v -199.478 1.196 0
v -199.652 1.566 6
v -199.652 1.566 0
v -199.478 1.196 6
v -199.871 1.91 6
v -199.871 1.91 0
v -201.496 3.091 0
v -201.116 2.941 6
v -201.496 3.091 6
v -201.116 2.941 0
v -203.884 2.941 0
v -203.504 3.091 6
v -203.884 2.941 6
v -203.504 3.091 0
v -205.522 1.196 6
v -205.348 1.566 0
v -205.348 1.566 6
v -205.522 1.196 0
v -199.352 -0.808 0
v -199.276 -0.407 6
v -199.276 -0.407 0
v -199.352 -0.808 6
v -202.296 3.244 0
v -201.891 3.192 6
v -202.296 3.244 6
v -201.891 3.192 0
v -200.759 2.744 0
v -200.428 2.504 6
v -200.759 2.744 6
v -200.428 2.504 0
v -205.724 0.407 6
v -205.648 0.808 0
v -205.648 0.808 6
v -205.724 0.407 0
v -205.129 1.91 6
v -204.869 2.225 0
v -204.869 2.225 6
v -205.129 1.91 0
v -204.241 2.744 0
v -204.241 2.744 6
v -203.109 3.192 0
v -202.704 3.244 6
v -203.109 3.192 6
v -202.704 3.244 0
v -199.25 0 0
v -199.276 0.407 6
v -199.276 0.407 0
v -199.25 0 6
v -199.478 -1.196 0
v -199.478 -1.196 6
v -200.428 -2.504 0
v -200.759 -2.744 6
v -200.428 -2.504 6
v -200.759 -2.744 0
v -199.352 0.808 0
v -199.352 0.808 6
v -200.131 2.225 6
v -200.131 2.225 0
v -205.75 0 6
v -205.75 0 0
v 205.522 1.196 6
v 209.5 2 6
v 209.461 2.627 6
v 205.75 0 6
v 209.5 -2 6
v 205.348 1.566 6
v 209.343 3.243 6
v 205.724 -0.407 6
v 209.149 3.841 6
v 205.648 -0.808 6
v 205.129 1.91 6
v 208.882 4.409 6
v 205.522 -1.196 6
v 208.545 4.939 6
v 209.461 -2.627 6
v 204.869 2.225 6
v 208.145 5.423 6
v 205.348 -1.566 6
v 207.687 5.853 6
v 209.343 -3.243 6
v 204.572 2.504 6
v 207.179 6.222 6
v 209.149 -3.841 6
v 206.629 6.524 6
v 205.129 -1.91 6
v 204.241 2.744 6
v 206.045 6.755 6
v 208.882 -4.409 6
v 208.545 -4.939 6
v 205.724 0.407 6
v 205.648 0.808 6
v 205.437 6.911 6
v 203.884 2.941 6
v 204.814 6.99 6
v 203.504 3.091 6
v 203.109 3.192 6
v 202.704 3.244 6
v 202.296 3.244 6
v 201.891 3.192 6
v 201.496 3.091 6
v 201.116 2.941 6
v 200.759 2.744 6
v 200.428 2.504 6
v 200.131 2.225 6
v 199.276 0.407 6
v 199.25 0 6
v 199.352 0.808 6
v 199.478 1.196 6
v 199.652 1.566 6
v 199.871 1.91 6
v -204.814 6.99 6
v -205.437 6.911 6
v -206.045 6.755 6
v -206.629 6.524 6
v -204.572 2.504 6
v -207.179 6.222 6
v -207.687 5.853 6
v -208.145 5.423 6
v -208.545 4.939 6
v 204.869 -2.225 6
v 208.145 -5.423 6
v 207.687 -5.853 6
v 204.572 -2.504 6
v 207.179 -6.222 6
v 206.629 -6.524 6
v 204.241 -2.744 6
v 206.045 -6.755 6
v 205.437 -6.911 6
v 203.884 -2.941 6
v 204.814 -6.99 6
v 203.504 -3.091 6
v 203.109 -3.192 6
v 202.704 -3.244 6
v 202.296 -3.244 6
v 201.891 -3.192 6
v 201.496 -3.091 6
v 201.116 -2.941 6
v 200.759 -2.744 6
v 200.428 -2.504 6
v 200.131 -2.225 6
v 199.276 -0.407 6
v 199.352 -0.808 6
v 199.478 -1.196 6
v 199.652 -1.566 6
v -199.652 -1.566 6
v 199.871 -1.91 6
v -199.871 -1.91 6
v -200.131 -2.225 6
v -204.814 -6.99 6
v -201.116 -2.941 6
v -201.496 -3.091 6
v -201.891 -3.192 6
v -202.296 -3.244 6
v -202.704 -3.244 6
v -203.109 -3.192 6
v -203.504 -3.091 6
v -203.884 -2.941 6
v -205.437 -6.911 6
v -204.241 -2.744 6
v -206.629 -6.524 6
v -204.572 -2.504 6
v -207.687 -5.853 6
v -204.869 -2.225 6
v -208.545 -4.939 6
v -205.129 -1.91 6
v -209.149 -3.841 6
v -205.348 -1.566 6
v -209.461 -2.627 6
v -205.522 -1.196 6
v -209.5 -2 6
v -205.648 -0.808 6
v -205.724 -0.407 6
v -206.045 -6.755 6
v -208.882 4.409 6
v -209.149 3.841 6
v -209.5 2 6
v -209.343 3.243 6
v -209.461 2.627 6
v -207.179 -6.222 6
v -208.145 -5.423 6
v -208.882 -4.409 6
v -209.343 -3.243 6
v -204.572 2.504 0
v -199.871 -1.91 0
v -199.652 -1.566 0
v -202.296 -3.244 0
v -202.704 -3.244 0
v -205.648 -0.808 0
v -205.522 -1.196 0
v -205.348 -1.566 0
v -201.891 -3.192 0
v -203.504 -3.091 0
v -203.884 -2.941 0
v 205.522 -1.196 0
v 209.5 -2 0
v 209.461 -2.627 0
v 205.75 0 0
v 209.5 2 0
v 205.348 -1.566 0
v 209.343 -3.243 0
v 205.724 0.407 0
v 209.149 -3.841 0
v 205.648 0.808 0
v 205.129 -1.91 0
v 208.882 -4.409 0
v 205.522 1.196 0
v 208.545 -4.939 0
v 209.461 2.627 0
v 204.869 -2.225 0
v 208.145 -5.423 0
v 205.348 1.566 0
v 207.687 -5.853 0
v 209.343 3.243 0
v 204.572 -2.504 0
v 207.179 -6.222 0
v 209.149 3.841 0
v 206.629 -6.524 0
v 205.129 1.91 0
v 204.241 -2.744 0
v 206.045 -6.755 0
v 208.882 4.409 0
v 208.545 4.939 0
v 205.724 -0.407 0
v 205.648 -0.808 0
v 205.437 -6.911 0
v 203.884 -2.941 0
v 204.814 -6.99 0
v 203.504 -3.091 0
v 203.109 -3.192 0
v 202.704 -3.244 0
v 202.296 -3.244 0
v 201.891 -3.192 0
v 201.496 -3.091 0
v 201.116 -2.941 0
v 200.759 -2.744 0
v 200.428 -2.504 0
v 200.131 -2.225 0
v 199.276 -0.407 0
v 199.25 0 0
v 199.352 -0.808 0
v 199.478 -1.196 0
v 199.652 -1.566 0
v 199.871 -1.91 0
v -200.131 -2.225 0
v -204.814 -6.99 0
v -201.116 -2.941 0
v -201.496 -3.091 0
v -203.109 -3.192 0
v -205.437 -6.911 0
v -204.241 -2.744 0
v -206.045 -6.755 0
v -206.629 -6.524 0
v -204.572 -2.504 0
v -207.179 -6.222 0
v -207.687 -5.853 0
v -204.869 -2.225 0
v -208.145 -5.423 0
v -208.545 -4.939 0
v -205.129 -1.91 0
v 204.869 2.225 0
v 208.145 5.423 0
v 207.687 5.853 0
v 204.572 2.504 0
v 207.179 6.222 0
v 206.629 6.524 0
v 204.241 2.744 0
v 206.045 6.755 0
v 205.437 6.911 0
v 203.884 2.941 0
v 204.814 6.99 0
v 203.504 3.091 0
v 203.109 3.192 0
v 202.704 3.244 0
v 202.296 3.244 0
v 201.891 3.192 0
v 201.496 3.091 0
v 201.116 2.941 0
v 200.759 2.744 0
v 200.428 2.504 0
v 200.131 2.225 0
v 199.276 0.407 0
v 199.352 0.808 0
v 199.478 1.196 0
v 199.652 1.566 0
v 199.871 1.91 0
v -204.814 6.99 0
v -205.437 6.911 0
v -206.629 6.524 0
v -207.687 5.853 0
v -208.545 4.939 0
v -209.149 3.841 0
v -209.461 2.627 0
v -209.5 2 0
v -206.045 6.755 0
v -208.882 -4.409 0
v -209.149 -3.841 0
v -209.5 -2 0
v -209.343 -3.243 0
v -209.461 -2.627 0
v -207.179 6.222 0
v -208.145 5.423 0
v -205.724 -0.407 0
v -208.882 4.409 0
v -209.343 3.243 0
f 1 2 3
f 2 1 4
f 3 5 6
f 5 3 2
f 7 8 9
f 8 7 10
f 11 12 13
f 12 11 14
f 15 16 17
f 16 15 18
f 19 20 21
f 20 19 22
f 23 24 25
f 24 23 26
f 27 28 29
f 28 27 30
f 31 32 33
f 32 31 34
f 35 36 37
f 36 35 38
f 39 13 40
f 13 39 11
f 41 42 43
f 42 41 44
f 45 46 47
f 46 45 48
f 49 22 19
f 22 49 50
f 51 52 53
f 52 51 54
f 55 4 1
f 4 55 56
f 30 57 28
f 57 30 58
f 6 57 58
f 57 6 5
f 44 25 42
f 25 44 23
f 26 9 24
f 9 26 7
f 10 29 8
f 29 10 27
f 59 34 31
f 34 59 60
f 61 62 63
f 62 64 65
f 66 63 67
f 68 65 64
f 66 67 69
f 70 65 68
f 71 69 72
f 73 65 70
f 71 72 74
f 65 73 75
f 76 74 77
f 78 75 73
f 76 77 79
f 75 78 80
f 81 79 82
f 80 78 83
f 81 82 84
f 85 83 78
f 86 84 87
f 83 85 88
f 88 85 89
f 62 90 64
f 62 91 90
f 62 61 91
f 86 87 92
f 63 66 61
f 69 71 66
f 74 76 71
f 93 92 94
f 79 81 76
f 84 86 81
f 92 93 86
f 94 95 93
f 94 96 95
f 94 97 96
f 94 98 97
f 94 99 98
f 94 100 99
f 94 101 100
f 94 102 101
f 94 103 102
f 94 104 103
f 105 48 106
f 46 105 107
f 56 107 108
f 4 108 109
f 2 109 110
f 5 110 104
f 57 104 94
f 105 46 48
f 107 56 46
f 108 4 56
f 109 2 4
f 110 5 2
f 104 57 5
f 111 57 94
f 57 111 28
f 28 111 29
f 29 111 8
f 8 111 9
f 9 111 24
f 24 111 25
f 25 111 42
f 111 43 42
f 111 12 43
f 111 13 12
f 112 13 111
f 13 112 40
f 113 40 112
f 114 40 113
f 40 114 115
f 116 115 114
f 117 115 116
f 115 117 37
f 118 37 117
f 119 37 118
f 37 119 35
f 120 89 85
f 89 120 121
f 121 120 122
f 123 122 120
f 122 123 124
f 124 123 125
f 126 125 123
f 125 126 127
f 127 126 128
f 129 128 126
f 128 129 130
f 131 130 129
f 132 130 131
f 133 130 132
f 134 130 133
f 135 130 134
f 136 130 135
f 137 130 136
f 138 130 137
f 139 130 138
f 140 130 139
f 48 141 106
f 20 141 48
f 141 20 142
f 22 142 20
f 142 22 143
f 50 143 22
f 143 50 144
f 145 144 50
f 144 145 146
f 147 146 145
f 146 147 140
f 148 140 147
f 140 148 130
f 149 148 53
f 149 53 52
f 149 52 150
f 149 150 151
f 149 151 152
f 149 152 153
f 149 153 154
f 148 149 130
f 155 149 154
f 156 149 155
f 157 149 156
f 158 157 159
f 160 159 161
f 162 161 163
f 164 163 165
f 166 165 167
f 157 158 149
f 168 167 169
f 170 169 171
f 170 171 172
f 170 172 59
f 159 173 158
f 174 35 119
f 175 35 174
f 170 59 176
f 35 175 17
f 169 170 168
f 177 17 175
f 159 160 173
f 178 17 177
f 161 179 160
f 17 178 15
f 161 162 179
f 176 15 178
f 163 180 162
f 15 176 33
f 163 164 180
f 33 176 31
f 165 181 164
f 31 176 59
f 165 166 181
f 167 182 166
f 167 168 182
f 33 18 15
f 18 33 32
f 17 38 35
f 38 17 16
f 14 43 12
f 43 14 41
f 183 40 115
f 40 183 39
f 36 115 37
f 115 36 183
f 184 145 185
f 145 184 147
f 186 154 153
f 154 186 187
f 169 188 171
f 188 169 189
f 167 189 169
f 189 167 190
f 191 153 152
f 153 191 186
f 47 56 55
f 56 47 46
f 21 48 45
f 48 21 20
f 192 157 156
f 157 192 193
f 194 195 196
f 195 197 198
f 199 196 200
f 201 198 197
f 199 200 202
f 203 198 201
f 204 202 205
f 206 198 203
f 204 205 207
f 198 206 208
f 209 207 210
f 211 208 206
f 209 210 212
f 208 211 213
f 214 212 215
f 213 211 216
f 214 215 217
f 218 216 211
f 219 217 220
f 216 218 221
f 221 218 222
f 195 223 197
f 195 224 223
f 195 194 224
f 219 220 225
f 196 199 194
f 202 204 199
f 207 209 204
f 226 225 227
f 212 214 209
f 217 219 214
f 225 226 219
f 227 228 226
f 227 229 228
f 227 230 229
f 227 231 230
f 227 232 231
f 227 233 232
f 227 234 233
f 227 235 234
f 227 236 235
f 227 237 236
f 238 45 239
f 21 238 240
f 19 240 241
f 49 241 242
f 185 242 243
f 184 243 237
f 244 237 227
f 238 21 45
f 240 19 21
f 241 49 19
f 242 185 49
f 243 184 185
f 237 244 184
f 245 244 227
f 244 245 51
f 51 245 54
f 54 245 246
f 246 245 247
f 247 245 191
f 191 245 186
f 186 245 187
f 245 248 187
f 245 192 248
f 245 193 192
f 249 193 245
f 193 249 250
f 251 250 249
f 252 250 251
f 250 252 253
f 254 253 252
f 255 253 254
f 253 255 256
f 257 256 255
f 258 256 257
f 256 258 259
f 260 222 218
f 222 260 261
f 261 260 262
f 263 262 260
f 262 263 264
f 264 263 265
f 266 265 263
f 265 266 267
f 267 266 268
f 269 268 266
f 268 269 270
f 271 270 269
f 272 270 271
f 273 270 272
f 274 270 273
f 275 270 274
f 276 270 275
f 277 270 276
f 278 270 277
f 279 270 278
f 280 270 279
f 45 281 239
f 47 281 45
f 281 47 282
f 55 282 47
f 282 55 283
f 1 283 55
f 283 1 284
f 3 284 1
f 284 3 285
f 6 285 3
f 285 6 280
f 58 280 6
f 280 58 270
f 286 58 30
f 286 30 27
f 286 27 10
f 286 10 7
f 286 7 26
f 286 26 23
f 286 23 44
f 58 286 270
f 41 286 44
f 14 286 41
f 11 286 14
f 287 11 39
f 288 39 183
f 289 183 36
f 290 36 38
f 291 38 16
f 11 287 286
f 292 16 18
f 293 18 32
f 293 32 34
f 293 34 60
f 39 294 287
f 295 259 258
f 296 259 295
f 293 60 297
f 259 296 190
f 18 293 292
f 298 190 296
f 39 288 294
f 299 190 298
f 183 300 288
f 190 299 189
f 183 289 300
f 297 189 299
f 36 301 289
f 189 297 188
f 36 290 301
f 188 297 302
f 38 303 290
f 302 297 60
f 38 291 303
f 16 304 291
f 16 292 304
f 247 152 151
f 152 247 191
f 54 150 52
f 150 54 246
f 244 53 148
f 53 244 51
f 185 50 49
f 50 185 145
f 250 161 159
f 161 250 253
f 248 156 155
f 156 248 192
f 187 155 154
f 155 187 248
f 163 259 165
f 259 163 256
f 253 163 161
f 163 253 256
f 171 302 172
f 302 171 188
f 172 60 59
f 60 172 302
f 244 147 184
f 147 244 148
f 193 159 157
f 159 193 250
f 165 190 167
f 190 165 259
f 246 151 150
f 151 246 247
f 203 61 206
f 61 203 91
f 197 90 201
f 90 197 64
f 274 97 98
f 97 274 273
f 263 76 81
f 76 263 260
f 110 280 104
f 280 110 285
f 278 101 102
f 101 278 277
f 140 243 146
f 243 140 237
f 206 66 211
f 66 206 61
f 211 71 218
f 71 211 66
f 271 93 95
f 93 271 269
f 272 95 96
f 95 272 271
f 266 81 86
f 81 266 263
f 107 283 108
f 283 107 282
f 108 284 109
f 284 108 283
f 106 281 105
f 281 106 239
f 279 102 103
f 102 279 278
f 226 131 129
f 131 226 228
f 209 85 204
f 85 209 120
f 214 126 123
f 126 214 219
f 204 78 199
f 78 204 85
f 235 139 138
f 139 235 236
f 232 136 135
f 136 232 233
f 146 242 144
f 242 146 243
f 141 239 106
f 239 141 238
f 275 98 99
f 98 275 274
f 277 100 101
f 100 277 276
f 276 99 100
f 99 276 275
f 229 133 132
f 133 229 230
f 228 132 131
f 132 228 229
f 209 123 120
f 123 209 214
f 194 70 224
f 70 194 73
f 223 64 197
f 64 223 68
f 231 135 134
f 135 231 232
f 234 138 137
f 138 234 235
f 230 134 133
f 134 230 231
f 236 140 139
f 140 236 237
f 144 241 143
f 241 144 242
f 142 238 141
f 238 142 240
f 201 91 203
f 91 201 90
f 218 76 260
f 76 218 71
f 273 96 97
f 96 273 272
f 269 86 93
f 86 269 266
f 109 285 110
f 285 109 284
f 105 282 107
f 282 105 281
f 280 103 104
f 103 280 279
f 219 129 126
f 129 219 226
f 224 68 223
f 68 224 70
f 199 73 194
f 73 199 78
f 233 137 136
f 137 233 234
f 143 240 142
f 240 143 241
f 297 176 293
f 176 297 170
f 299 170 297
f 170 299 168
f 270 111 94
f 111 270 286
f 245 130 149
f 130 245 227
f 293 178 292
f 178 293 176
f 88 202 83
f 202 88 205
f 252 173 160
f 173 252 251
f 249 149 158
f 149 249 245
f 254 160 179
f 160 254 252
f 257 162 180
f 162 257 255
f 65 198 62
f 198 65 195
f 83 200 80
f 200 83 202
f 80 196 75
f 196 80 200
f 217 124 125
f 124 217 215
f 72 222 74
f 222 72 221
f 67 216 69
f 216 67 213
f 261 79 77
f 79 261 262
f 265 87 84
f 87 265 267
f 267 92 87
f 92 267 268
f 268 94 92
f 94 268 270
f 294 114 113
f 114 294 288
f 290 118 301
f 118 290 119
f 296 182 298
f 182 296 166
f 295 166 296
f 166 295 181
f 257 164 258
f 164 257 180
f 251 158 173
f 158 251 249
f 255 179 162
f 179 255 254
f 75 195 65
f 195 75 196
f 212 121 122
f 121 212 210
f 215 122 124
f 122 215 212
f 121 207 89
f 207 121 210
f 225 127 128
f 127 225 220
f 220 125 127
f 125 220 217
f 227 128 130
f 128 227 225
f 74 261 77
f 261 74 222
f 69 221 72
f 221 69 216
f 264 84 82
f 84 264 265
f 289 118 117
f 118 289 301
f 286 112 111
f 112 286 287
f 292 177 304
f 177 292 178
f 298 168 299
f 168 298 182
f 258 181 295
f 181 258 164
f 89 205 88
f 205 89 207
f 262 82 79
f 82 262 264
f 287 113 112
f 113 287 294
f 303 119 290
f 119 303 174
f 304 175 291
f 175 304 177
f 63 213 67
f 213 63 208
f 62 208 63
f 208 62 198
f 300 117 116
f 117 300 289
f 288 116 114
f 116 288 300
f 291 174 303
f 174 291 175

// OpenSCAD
$fn = 50;


difference() {
	union() {
		hull() {
			translate(v = [-204.5000000000, 2.0000000000, 0]) {
				cylinder(h = 6, r = 5);
			}
			translate(v = [204.5000000000, 2.0000000000, 0]) {
				cylinder(h = 6, r = 5);
			}
			translate(v = [-204.5000000000, -2.0000000000, 0]) {
				cylinder(h = 6, r = 5);
			}
			translate(v = [204.5000000000, -2.0000000000, 0]) {
				cylinder(h = 6, r = 5);
			}
		}
	}
	union() {
		translate(v = [-202.5000000000, 0.0000000000, 0]) {
			cylinder(h = 6, r = 3.2500000000);
		}
		translate(v = [202.5000000000, 0.0000000000, 0]) {
			cylinder(h = 6, r = 3.2500000000);
		}
		translate(v = [-202.5000000000, 0.0000000000, 0]) {
			cylinder(h = 6, r = 1.8000000000);
		}
		translate(v = [202.5000000000, 0.0000000000, 0]) {
			cylinder(h = 6, r = 1.8000000000);
		}
		translate(v = [-202.5000000000, 0.0000000000, 0]) {
			cylinder(h = 6, r = 1.8000000000);
		}
		translate(v = [202.5000000000, 0.0000000000, 0]) {
			cylinder(h = 6, r = 1.8000000000);
		}
		translate(v = [-202.5000000000, 0.0000000000, 0]) {
			cylinder(h = 6, r = 1.8000000000);
		}
		translate(v = [202.5000000000, 0.0000000000, 0]) {
			cylinder(h = 6, r = 1.8000000000);
		}
	}
}
